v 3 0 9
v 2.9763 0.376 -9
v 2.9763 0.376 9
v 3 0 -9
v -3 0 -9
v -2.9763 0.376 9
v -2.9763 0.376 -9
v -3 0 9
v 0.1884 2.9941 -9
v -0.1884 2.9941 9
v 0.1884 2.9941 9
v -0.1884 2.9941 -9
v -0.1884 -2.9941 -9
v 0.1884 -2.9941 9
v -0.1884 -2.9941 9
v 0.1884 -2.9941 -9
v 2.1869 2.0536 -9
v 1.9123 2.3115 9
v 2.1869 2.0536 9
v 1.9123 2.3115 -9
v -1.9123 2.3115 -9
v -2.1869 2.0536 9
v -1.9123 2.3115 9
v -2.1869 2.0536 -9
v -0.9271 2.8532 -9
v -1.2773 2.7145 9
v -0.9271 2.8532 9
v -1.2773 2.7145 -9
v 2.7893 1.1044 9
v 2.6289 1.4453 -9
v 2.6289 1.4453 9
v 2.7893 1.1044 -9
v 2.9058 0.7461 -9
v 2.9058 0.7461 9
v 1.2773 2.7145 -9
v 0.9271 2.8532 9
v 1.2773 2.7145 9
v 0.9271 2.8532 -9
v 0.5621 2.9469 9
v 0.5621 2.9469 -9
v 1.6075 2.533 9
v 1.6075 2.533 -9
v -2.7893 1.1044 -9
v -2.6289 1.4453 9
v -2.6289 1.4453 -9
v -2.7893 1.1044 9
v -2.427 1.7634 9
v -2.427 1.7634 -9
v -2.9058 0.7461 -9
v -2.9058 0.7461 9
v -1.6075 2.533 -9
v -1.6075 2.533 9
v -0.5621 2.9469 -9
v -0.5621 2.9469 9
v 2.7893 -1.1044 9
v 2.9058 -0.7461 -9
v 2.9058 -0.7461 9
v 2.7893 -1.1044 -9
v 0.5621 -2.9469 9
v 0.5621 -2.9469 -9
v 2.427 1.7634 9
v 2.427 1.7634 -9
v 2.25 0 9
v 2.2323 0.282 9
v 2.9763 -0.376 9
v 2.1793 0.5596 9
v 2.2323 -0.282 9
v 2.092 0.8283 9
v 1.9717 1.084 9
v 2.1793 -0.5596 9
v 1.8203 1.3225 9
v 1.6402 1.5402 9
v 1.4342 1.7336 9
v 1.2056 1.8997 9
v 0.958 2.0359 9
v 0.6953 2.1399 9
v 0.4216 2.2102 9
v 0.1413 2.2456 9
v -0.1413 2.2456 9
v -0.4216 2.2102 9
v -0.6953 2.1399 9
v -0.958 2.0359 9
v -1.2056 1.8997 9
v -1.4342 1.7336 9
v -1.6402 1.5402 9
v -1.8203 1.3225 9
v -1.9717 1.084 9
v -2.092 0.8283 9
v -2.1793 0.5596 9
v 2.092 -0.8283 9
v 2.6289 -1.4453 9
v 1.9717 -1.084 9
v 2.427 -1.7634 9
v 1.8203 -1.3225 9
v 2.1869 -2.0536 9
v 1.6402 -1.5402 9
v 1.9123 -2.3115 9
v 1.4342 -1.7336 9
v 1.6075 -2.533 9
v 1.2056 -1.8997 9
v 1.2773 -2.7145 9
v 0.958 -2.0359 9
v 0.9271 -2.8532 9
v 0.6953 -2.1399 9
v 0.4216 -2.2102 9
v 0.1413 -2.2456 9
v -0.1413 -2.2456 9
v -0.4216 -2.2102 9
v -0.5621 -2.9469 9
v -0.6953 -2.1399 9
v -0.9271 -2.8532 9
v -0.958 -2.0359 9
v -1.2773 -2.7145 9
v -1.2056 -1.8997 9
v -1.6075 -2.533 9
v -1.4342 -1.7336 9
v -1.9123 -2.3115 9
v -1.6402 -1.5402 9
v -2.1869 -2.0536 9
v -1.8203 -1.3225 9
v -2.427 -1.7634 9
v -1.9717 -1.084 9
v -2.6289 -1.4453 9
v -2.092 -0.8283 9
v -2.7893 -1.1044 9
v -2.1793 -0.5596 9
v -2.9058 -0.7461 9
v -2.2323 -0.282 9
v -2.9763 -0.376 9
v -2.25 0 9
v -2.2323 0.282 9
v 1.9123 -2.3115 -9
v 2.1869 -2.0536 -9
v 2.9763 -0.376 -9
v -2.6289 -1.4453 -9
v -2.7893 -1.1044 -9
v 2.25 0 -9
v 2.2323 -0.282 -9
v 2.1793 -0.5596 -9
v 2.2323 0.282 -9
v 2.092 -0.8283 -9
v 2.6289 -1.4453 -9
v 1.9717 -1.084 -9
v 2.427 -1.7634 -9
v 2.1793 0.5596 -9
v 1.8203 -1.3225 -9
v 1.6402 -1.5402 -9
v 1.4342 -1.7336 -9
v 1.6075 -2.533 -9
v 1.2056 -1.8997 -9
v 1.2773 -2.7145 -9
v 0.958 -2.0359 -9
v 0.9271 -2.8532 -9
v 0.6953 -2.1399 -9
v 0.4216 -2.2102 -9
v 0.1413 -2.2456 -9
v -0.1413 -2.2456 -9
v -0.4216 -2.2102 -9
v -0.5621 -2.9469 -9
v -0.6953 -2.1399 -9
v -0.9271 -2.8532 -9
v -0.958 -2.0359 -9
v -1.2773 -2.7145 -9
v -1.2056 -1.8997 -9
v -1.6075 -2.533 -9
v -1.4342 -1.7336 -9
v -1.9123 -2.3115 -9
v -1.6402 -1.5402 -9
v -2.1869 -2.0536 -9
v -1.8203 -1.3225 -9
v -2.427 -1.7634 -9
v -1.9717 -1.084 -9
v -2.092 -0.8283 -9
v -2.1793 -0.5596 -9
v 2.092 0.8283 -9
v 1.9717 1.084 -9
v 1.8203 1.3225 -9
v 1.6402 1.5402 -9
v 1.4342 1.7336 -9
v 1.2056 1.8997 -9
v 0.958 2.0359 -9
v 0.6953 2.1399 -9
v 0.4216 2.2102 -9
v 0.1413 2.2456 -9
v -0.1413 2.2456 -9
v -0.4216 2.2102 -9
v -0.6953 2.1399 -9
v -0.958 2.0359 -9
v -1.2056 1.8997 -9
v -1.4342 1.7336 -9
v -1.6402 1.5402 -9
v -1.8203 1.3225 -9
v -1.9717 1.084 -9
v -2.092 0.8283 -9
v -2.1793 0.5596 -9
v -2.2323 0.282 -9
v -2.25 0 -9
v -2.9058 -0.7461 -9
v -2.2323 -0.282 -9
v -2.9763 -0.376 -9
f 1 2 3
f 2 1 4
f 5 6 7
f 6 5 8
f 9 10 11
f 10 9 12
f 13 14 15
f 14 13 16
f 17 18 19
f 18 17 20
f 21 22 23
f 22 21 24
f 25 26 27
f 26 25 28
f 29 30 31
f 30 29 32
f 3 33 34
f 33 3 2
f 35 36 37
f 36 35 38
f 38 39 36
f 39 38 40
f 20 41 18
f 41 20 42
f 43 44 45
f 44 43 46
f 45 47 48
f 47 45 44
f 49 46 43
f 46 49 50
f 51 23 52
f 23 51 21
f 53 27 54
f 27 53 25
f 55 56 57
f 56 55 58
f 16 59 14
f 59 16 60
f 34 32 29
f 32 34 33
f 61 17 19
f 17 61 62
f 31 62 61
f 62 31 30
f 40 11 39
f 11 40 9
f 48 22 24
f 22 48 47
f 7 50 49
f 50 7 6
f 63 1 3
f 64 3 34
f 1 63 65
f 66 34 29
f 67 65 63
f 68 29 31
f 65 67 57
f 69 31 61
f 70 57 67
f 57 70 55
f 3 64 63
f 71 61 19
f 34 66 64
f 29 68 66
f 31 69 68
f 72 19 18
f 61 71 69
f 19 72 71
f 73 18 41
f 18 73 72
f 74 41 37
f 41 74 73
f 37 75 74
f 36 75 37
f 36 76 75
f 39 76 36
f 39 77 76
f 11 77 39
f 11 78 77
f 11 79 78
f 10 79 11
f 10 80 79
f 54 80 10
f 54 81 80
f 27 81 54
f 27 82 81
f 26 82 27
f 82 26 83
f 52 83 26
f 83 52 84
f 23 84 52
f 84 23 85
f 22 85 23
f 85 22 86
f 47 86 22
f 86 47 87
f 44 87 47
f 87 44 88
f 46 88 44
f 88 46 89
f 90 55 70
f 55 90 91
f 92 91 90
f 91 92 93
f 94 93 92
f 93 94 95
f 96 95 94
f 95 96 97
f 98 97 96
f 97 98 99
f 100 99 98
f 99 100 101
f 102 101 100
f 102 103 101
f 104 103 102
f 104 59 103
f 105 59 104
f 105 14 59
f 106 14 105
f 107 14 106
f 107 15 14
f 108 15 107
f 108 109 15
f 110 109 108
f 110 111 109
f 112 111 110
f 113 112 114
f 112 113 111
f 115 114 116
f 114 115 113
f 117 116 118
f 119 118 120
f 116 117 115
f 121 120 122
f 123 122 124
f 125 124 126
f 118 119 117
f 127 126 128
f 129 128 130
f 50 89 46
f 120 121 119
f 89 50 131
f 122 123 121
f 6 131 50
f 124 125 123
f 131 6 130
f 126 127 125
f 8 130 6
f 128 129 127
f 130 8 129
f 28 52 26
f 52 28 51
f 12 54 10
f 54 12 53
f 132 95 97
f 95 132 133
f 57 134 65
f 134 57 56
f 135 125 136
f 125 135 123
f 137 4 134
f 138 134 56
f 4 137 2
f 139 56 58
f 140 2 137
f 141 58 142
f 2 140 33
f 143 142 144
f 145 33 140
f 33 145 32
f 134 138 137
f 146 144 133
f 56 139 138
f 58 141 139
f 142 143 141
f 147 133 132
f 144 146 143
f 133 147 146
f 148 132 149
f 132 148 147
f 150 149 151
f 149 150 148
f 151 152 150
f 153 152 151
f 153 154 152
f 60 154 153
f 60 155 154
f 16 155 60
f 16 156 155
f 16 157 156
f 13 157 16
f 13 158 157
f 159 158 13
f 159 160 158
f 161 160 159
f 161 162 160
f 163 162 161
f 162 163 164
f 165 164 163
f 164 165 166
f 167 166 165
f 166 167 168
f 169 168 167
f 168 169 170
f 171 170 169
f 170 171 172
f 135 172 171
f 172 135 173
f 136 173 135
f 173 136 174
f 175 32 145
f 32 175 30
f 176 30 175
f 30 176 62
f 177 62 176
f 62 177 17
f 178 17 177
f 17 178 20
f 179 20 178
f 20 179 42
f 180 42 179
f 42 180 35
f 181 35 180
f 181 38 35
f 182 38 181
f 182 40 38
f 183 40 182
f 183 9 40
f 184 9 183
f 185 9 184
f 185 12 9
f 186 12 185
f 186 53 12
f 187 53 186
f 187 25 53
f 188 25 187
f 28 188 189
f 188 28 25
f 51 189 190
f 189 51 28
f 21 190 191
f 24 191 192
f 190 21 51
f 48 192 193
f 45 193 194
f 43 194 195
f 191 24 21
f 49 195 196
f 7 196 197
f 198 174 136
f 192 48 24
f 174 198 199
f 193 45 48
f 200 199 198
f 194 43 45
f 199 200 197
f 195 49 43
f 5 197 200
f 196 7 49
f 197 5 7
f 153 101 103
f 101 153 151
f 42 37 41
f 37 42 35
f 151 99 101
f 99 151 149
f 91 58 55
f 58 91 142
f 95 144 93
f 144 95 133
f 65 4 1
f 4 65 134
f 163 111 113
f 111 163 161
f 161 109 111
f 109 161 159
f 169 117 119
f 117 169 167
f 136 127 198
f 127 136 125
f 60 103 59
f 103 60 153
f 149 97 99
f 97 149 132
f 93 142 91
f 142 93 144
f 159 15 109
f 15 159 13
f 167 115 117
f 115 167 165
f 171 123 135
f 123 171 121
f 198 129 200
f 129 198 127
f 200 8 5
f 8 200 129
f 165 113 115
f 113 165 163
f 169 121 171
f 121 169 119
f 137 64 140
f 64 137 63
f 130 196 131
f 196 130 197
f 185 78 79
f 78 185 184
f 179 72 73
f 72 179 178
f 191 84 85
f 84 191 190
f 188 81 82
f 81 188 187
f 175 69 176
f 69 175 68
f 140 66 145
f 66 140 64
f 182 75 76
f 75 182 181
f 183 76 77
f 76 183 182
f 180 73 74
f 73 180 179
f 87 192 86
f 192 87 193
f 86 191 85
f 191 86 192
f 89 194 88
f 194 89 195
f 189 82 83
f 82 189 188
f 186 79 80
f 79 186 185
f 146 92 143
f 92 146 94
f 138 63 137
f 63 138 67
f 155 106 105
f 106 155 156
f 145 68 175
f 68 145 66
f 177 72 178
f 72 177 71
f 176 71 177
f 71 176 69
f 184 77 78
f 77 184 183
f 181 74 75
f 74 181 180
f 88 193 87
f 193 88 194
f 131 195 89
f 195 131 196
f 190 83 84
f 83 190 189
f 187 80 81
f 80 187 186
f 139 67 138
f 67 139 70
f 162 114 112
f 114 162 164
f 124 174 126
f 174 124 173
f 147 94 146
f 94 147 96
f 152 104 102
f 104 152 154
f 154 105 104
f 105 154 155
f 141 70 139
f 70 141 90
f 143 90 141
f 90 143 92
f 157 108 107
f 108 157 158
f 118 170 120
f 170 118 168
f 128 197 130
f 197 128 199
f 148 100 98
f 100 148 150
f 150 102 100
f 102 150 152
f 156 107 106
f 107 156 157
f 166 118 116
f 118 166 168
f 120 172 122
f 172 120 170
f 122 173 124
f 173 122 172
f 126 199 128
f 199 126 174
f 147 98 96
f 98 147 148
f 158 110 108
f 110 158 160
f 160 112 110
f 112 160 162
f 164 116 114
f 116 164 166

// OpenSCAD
$fn = 50;


difference() {
	union() {
		translate(v = [0, 0, -9.0000000000]) {
			cylinder(h = 18, r = 3.0000000000);
		}
	}
	union() {
		translate(v = [0, 0, -100.0000000000]) {
			cylinder(h = 200, r = 2.2500000000);
		}
	}
}
